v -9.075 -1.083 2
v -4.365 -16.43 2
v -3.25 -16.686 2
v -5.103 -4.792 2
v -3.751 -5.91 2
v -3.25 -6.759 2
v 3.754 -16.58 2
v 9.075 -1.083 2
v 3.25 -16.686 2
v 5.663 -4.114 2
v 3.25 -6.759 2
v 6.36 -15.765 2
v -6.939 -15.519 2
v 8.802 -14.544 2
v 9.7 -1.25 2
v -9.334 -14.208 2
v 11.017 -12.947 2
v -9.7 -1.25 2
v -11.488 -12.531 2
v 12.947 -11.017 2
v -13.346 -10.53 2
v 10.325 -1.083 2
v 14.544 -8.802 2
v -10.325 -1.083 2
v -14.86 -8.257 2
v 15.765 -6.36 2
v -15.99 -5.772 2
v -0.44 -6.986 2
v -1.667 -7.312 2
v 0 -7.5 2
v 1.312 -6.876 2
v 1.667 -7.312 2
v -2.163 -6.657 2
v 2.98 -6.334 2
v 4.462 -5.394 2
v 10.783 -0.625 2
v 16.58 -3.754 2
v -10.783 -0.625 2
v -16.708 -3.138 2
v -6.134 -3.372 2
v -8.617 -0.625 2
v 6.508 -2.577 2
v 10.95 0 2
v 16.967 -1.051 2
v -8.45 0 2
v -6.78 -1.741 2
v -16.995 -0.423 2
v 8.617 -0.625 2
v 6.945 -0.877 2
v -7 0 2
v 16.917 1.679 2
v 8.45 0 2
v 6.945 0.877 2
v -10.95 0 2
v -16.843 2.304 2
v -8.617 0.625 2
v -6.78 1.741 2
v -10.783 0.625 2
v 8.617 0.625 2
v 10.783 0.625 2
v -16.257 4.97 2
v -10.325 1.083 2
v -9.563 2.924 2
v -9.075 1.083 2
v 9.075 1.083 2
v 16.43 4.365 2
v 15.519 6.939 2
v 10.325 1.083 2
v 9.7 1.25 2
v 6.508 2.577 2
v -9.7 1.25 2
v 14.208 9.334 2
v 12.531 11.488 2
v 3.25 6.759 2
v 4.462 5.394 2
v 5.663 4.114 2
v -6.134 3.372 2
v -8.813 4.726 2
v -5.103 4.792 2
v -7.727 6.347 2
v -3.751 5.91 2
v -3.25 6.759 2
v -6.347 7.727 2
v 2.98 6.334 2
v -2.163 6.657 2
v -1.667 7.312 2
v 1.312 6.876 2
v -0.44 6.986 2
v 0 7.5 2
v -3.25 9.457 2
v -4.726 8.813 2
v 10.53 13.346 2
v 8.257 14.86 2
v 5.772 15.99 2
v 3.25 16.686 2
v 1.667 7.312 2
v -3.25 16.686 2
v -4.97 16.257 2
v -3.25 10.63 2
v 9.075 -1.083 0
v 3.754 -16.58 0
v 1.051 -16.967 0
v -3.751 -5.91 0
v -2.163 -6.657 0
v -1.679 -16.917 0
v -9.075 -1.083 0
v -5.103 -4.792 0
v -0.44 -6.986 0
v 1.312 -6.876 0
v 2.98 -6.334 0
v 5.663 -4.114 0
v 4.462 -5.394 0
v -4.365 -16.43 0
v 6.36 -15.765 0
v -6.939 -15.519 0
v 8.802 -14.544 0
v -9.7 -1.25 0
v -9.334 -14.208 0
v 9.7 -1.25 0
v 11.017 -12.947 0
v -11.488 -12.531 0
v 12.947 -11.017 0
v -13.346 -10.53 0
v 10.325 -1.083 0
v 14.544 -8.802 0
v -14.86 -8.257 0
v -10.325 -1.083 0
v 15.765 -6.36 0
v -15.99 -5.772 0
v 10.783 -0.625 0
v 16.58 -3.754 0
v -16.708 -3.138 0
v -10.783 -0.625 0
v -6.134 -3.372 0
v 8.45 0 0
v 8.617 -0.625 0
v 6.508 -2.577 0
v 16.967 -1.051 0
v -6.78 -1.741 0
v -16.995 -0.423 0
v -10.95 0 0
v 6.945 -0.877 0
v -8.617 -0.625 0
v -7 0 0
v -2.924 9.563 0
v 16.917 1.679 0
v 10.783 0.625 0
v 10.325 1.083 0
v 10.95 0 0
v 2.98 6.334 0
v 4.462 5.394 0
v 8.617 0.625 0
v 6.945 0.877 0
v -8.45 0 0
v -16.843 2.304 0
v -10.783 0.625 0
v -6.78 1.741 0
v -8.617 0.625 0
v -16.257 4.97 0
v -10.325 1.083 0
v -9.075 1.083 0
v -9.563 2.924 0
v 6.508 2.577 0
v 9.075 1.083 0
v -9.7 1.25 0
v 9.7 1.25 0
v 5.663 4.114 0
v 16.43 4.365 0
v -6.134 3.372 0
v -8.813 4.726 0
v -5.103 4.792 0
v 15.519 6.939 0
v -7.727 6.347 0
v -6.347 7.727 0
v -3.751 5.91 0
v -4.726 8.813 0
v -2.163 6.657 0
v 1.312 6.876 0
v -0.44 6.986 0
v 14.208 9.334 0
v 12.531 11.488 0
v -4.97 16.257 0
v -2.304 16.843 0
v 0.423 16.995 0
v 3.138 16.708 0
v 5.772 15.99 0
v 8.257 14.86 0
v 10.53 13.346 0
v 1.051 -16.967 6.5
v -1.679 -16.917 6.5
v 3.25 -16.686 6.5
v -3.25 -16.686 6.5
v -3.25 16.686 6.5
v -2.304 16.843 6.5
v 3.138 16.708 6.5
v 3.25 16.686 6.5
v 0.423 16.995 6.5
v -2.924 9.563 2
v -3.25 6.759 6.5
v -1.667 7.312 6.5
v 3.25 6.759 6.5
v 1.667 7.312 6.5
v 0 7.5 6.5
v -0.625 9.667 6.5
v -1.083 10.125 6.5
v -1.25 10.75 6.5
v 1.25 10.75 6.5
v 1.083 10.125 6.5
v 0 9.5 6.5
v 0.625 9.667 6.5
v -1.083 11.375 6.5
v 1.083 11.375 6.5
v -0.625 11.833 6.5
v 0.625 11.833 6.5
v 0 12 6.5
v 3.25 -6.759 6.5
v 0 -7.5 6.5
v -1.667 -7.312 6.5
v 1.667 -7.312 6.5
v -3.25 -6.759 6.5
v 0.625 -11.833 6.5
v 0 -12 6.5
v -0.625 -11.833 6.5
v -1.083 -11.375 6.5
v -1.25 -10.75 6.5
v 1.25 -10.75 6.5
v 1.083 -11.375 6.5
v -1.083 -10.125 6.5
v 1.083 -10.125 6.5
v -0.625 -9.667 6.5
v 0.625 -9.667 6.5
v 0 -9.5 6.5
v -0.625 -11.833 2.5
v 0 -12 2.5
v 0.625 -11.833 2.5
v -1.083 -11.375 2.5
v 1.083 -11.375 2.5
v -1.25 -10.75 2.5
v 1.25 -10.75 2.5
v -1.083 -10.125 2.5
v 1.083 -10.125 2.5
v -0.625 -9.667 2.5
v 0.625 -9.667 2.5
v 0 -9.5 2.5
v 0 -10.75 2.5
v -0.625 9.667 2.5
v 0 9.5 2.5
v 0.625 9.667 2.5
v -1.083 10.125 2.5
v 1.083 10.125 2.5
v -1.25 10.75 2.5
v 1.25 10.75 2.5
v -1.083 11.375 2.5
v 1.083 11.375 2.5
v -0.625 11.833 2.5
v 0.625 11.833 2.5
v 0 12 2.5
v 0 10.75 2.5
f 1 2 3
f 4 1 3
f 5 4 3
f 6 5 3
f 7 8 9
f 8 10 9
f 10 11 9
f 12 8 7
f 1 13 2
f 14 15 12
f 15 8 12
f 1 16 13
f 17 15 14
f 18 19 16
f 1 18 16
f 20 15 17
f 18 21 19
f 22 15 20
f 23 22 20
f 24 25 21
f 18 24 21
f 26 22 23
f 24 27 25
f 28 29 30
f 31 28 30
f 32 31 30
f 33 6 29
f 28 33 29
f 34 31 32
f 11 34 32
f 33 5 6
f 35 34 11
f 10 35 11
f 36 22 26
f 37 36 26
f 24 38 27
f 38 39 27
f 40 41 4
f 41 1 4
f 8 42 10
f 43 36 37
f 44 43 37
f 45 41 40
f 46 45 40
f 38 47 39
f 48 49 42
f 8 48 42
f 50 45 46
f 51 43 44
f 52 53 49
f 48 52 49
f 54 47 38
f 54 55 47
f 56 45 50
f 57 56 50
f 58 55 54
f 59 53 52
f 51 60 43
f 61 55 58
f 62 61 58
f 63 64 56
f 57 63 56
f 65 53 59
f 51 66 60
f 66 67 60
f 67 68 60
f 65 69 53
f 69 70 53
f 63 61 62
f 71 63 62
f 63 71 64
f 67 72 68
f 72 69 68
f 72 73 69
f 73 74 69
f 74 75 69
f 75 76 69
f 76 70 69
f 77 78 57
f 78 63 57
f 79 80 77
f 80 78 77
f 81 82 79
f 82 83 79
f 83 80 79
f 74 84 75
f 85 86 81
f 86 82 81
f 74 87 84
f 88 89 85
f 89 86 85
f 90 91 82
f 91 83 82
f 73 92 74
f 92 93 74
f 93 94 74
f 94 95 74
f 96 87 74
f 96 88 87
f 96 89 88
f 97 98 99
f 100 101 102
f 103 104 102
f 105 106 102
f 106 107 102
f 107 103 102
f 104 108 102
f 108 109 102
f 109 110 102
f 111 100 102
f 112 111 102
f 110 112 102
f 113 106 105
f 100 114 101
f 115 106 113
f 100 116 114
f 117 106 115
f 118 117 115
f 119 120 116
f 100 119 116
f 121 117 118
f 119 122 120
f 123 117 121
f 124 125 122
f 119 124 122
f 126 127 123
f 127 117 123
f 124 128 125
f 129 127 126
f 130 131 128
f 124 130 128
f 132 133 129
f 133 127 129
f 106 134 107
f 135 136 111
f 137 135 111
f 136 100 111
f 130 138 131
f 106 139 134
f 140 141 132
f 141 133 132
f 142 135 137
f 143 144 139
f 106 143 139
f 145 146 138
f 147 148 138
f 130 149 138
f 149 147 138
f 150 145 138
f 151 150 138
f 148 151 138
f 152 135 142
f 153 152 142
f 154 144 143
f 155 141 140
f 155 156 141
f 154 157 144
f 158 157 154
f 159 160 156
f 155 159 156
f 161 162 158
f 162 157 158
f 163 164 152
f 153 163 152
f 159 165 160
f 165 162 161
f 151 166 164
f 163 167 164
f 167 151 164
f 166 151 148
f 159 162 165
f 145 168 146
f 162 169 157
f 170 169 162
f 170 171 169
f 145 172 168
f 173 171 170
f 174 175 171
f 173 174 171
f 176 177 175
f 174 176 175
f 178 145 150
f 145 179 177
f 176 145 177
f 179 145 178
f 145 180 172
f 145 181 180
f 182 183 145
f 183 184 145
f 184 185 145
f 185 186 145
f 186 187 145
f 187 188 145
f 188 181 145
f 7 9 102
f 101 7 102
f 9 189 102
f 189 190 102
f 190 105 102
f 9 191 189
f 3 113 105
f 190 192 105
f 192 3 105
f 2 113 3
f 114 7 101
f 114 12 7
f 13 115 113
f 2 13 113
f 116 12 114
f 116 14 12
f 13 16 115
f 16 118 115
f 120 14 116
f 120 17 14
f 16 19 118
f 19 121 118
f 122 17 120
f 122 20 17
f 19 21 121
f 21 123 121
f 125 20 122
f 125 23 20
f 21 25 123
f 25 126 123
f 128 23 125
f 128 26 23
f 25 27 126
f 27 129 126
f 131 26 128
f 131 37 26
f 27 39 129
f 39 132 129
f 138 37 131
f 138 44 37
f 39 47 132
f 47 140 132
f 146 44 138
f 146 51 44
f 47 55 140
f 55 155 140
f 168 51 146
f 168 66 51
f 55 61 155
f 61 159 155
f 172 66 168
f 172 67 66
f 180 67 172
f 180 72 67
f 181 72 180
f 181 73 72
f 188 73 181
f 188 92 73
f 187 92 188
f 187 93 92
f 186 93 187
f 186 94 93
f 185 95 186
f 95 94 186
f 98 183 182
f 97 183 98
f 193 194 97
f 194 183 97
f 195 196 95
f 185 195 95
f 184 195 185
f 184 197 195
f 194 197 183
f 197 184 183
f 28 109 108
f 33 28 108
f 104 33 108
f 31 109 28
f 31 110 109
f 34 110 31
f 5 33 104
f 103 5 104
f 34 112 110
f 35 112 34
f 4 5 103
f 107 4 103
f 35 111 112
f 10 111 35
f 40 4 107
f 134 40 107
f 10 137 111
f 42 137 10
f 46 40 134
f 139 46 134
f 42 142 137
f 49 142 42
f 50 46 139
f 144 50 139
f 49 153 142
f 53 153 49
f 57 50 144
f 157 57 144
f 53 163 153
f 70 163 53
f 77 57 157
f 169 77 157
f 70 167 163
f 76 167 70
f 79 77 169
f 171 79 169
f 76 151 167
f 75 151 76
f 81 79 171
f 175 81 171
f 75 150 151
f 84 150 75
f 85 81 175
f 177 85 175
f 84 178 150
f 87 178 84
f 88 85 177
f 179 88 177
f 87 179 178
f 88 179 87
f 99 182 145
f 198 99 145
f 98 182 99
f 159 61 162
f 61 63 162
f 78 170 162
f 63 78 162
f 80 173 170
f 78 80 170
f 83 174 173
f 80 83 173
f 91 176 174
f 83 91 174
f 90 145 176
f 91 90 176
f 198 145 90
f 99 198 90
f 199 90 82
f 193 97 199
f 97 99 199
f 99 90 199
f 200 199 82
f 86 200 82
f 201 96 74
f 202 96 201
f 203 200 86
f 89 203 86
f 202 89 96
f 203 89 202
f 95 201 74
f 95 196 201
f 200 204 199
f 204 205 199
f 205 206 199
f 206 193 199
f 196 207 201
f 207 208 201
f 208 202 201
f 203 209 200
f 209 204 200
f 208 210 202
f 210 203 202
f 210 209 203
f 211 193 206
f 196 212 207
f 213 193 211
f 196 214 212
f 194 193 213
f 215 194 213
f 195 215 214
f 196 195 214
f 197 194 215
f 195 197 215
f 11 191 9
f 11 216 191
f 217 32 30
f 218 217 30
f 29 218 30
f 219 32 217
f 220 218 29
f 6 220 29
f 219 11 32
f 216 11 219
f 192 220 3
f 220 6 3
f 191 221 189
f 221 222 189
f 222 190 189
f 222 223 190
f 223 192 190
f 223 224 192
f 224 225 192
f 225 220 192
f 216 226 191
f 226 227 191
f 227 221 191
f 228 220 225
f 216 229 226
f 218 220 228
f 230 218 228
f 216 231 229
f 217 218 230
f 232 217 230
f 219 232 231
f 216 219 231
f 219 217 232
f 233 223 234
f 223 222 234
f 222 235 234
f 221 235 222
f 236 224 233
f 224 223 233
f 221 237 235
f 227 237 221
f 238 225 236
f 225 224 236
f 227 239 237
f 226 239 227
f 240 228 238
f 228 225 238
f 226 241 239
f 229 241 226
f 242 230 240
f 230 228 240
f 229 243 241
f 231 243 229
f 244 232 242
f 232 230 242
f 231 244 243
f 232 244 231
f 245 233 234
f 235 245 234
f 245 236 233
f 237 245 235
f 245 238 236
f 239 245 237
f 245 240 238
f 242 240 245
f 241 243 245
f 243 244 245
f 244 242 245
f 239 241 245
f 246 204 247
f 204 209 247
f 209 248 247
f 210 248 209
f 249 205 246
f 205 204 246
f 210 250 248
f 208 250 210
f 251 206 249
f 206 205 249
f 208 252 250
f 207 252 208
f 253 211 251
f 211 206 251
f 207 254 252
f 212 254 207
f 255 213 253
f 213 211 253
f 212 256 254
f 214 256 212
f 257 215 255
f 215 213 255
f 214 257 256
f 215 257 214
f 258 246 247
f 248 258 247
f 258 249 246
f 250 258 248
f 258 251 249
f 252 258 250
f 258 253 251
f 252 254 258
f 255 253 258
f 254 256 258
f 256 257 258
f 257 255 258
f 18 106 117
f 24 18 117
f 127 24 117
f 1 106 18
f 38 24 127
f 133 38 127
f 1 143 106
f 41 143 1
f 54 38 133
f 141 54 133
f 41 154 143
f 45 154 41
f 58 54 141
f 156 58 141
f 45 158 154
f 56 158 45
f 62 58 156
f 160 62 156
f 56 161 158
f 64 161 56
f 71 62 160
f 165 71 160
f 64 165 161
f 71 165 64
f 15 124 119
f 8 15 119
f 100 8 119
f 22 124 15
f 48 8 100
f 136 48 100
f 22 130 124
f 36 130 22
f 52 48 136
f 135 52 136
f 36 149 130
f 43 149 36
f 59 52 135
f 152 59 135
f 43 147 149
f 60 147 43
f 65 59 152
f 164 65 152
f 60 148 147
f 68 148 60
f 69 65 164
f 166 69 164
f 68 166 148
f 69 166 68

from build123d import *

# Parameters (mm, degrees)
SKETCH_1_R          = 17
EXTRUDE_1_DEPTH     = 2
SKETCH_2_R          = 7
CUT_EXTRUDE_1_DEPTH = 2
CUT_EXTRUDE_3_DEPTH = 2.5
EXTRUDE_6_DEPTH     = 4.5
SKETCH_25_R         = 1.25
CUT_EXTRUDE_4_DEPTH = 4
SKETCH_27_R         = 1.25
CUT_EXTRUDE_5_DEPTH = 2


with BuildPart() as part:
    # 草图1 → 凸台-拉伸1 (new body)
    with BuildSketch(Plane.XY):
        Circle(SKETCH_1_R)
    extrude(amount=EXTRUDE_1_DEPTH)

    # 草图2 → 切除-拉伸1 (cut)
    with BuildSketch(Plane(origin=(0, 0, 0), x_dir=(-1, 0, 0), z_dir=(0, 0, -1))):
        Circle(SKETCH_2_R)
    extrude(amount=-CUT_EXTRUDE_1_DEPTH, mode=Mode.SUBTRACT)

    # 草图11 → 切除-拉伸3 (cut)
    with BuildSketch(Plane(origin=(0, 0, 0), x_dir=(-1, 0, 0), z_dir=(0, 0, -1))):
        with BuildLine():
            Line((4.97031898, 16.257180851), (2.923717047, 9.56304756))
            ThreePointArc((2.923717047, 9.56304756), (7.071067812, 7.071067812), (9.56304756, 2.923717047))
            Line((9.56304756, 2.923717047), (16.257180851, 4.97031898))
            ThreePointArc((16.257180851, 4.97031898), (12.02081528, 12.02081528), (4.97031898, 16.257180851))
        make_face()
    extrude(amount=-CUT_EXTRUDE_3_DEPTH, mode=Mode.SUBTRACT)

    # 草图24 → 凸台-拉伸6 (add)
    with BuildSketch(Plane.XY.offset(2)):
        with BuildLine():
            Line((3.25, 16.686446596), (3.25, 6.759252917))
            ThreePointArc((3.25, 6.759252917), (0, 7.5), (-3.25, 6.759252917))
            Line((-3.25, 6.759252917), (-3.25, 16.686446596))
            ThreePointArc((-3.25, 16.686446596), (0, 17), (3.25, 16.686446596))
        make_face()
        with BuildLine():
            Line((3.25, -16.686446596), (3.25, -6.759252917))
            ThreePointArc((3.25, -6.759252917), (0, -7.5), (-3.25, -6.759252917))
            Line((-3.25, -6.759252917), (-3.25, -16.686446596))
            ThreePointArc((-3.25, -16.686446596), (0, -17), (3.25, -16.686446596))
        make_face()
    extrude(amount=EXTRUDE_6_DEPTH)

    # 草图25 → 切除-拉伸4 (cut)
    with BuildSketch(Plane.XY.offset(6.5)):
        with Locations((0, 10.75)):
            Circle(SKETCH_25_R)
        with Locations(Location((0, -10.75, 0), (0, 0, 180))):
            Circle(SKETCH_25_R)
    extrude(amount=-CUT_EXTRUDE_4_DEPTH, mode=Mode.SUBTRACT)

    # 草图27 → 切除-拉伸5 (cut)
    with BuildSketch(Plane(origin=(0, 0, 0), x_dir=(-1, 0, 0), z_dir=(0, 0, -1))):
        with Locations((-9.7, 0)):
            Circle(SKETCH_27_R)
        with Locations((9.7, 0)):
            Circle(SKETCH_27_R)
    extrude(amount=-CUT_EXTRUDE_5_DEPTH, mode=Mode.SUBTRACT)


solid = part.part
